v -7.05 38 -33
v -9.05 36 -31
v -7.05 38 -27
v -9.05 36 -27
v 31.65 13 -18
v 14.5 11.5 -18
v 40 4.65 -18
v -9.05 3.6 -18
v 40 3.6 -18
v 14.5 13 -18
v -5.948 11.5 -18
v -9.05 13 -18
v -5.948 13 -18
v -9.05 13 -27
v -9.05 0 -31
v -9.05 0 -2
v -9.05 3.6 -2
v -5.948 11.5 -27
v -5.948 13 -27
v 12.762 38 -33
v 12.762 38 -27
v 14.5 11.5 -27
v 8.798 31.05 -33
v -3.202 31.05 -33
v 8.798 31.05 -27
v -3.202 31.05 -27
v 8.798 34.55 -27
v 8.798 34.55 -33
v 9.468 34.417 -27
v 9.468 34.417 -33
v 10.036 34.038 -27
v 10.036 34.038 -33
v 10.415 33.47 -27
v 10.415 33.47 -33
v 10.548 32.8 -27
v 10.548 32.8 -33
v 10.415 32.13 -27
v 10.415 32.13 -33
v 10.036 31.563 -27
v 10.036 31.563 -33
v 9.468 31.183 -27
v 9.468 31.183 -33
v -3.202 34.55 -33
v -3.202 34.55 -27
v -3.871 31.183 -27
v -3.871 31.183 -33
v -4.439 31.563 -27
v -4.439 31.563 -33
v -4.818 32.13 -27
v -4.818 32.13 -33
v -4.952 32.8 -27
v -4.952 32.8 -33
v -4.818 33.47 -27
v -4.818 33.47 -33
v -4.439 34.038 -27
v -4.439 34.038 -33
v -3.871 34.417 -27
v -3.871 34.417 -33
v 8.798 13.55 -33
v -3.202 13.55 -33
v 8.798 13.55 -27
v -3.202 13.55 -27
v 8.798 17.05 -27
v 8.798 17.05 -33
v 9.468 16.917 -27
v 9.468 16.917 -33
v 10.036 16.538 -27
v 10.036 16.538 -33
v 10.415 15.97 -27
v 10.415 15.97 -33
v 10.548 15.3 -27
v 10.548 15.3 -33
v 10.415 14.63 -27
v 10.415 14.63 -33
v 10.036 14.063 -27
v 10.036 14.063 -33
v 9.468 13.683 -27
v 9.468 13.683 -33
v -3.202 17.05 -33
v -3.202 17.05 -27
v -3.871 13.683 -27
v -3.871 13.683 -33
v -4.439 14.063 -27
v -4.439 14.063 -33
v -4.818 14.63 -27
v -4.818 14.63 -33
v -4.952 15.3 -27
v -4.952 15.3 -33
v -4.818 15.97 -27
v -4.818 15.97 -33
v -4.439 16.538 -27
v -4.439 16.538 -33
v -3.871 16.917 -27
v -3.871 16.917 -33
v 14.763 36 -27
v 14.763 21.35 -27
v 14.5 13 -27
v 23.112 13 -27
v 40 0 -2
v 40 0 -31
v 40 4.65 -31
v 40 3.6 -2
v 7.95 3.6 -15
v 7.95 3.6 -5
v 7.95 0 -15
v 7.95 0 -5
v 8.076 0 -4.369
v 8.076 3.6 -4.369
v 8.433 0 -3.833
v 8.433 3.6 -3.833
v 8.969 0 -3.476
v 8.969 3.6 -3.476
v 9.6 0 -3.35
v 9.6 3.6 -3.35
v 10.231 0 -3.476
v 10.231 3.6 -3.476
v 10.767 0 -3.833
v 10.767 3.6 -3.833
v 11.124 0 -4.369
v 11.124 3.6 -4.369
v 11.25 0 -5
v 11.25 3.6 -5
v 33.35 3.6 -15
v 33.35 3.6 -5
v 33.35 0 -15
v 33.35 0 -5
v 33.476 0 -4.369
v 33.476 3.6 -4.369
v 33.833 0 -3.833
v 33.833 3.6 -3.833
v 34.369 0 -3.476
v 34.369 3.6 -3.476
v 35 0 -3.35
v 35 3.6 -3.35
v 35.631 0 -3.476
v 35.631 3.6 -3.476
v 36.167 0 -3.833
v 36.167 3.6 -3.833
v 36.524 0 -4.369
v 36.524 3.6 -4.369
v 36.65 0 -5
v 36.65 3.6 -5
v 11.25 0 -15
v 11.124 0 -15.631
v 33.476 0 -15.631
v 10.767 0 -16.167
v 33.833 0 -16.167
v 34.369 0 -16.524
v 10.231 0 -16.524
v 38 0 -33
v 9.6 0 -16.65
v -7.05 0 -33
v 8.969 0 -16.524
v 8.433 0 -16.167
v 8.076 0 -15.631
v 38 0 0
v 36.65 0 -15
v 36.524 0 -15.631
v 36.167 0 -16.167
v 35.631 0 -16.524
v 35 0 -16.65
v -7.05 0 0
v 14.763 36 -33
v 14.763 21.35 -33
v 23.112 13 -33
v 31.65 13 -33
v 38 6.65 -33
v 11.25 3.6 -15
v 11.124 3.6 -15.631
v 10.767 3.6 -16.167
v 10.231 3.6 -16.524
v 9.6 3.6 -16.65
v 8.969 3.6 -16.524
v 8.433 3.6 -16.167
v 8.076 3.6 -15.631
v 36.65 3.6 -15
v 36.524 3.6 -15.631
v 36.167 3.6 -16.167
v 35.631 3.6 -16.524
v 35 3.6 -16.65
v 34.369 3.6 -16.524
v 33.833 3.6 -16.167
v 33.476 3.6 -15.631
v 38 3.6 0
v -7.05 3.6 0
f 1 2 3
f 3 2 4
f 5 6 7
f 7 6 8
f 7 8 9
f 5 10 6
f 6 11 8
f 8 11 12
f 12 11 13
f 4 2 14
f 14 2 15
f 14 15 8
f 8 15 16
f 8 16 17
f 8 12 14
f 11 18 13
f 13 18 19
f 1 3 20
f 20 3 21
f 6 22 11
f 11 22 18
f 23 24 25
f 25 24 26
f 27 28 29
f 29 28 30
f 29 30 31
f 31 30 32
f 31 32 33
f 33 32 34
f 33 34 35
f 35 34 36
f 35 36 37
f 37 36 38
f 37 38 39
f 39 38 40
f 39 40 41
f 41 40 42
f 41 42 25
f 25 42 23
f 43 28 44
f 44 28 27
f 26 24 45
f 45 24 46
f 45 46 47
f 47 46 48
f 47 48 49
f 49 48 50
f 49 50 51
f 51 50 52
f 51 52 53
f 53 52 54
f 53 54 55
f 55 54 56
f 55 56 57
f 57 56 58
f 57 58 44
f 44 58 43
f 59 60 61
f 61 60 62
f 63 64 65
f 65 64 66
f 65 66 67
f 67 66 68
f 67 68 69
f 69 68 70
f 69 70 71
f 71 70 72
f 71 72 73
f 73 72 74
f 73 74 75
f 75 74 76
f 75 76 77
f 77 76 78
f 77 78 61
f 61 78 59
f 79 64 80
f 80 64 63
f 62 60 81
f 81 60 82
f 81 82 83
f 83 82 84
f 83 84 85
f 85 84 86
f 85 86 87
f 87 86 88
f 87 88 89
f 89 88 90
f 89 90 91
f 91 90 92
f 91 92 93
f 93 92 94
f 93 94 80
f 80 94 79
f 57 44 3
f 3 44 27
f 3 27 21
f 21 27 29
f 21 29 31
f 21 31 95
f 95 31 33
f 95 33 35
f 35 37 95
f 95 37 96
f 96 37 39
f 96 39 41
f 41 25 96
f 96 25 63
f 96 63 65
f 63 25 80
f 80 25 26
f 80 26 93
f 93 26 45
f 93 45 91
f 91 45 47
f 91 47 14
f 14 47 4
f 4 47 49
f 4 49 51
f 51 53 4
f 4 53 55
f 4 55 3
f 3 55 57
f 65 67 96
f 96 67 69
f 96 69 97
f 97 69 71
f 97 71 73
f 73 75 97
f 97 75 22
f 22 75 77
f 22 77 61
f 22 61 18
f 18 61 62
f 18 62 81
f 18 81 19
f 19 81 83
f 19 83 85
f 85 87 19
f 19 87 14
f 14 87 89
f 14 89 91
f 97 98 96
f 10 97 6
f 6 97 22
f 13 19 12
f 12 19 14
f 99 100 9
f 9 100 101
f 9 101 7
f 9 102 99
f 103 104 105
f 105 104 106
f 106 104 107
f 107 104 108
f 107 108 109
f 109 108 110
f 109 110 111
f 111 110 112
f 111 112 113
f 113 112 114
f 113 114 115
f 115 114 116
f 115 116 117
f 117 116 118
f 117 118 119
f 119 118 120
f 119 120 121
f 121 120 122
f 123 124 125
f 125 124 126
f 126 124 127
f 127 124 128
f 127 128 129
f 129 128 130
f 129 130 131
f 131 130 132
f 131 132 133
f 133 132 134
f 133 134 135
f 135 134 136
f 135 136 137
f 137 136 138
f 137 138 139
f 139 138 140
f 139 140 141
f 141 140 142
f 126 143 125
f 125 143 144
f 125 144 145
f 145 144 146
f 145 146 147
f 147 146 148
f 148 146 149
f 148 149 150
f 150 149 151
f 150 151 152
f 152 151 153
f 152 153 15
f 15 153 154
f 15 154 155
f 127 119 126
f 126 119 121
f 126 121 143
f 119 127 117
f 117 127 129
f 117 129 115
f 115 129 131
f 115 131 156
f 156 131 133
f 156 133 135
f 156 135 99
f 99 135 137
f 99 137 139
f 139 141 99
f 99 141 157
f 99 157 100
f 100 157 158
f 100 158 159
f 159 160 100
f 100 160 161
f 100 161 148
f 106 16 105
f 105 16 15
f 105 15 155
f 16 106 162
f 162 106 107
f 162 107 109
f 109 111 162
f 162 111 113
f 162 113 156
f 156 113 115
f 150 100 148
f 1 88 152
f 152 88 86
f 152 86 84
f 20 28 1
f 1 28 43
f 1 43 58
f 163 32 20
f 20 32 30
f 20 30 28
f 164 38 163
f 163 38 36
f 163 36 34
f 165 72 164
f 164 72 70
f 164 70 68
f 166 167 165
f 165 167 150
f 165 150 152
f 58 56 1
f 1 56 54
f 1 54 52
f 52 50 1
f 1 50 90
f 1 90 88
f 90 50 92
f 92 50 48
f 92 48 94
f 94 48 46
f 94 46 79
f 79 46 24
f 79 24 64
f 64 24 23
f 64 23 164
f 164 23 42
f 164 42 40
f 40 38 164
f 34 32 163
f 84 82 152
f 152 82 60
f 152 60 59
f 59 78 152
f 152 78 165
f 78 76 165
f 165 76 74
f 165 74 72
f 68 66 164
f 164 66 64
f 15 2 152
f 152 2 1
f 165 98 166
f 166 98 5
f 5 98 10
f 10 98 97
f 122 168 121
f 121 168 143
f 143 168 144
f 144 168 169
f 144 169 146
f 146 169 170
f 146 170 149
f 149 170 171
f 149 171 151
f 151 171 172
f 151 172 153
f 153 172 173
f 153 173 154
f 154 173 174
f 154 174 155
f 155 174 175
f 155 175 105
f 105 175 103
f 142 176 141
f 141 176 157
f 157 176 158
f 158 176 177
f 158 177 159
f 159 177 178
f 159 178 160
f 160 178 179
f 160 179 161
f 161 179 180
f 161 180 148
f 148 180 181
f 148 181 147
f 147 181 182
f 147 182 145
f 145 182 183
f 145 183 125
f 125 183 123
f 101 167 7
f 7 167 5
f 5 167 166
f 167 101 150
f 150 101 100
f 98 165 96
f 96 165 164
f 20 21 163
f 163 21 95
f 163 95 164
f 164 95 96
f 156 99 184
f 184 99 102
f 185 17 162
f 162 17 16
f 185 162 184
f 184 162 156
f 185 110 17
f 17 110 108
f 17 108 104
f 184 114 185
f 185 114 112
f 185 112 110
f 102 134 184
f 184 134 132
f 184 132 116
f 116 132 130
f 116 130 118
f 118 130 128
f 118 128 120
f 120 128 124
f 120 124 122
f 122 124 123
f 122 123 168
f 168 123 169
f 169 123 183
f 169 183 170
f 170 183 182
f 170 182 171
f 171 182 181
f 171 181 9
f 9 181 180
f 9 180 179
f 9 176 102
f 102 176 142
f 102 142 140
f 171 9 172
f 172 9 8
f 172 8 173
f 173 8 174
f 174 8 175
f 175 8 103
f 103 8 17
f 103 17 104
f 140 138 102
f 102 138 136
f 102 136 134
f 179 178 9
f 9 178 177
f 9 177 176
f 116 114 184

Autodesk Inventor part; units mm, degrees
ref_plane "YZ Plane" through (0, 0, 0) normal (1, 0, 0) x (0, 1, 0)
ref_plane "XZ Plane" through (0, 0, 0) normal (0, 1, 0) x (-1, 0, 0)
ref_plane "XY Plane" through (0, 0, 0) normal (0, 0, 1) x (1, 0, 0)
sketch "Sketch1" plane through (0, 0, 0) normal (1, 0, 0) x (0, 1, 0)
  line L0 (0, 0) -> (13, 0)
  line L1 (13, 0) -> (13, -27)
  line L2 (13, -27) -> (0, -27)
  line L3 (0, -27) -> (0, 0)
  dimension "d0" = 13
  dimension "d1" = 27
extrude "Extrusion1" add sketch "Sketch1" along normal blind 40
sketch "Sketch2" plane through (40, 0, 0) normal (1, 0, 0) x (0, 0, -1)
  line L0 (27, 0) -> (27, 13) projected
  line L1 (27, 0) -> (33, 0)
  line L2 (33, 0) -> (33, 38)
  line L3 (33, 38) -> (27, 38)
  line L4 (27, 38) -> (27, 0)
  point P0 (0, 0)
  dimension "d4" = 6
  dimension "d5" = 38
extrude "Extrusion2" add sketch "Sketch2" against normal blind 40
sketch "Sketch3" plane through (0, 13, 0) normal (0, 1, 0) x (1, 0, 0)
  line L0 (40, 27) -> (40, 0) construction
  line L1 (40, 0) -> (35, 0) construction
  line L2 (0, 0) -> (40, 0) construction
  line L3 (35, 0) -> (35, 5) construction
  line L4 (35, 5) -> (35, 15) construction
  line L5 (35, 5) -> (9.6, 5) construction
  line L6 (35, 5) -> (35, 15) construction
  line L7 (36.65, 5) -> (36.65, 15)
  line L8 (33.35, 15) -> (33.35, 5)
  arc A0 (33.35, 5) -> (36.65, 5) centre (35, 5) ccw
  arc A1 (36.65, 15) -> (33.35, 15) centre (35, 15) ccw
  line L9 (9.6, 0) -> (9.6, 5) construction
  line L10 (9.6, 5) -> (9.6, 15) construction
  line L11 (9.6, 5) -> (-15.8, 5) construction
  line L12 (9.6, 5) -> (9.6, 15) construction
  line L13 (11.25, 5) -> (11.25, 15)
  line L14 (7.95, 15) -> (7.95, 5)
  arc A2 (7.95, 5) -> (11.25, 5) centre (9.6, 5) ccw
  arc A3 (11.25, 15) -> (7.95, 15) centre (9.6, 15) ccw
  point P0 (35, 10)
  point P1 (9.6, 10)
  dimension "d8" = 5
  dimension "d9" = 5
  dimension "d10" = 10
  dimension "d11" = 25.4
  dimension "d12" = 3.3
  dimension "d13" = 5
  dimension "d14" = 10
  dimension "d15" = 25.4
  dimension "d16" = 3.3
extrude "Extrusion3" cut sketch "Sketch3" against normal blind 40
sketch "Sketch4" plane through (0, 13, 0) normal (0, 1, 0) x (1, 0, 0)
  point P0 (0, 0)
sketch "Sketch7" plane through (40, 13, -27) normal (0, 0, 1) x (1, 0, 0)
  line L0 (0, 25) -> (0, 0) projected
  line L1 (-40, 0) -> (0, 0) projected
  line L2 (0, 25) -> (-20, 25)
  line L3 (-20, 25) -> (-20, 0)
  line L4 (-20, 0) -> (0, 0)
  line L5 (0, 0) -> (0, 25)
  point P0 (-40, -13)
extrude "Extrusion6" cut sketch "Sketch7" against normal blind 45.275
sketch "Sketch9" plane through (0, 0, 0) normal (-1, 0, 0) x (0, 0, 1)
  line L0 (0, 0) -> (0, 3.6) construction
  line L1 (0, 13) -> (0, 0) construction
  line L2 (0, 3.6) -> (-18, 3.6)
  line L3 (-18, 3.6) -> (-18, 13)
  line L4 (-18, 13) -> (0, 13)
  line L5 (0, 13) -> (0, 3.6)
  dimension "d58" = 3.6
  dimension "d59" = 18
extrude "Extrusion8" cut sketch "Sketch9" against normal blind 50.325
sketch "Sketch10" plane through (40, 0, -33) normal (0, 0, -1) x (-1, 0, 0)
  point P0 (40, 0)
sketch "Sketch8" plane through (0, 13, -27) normal (0, 1, 0) x (1, 0, 0)
  line L0 (0, 0) -> (20, 0) construction
  line L1 (0, 0) -> (2.5, 0) construction
  line L2 (2.5, 0) -> (14.5, 0)
  line L3 (14.5, 0) -> (14.5, -10)
  line L4 (14.5, -10) -> (2.5, -10)
  line L5 (2.5, -10) -> (2.5, 0)
  point P0 (0, -27)
  point P1 (26.7625, 0)
  dimension "d53" = 2.5
  dimension "d54" = 12
  dimension "d55" = 10
extrude "Extrusion7" cut sketch "Sketch8" against normal blind 1.5
sketch "Sketch11" plane through (0, 0, 0) normal (-1, 0, 0) x (0, 0, 1)
  line L0 (0, 3.6) -> (-18, 3.6) projected
  line L1 (-18, 3.6) -> (-18, 13) projected
  line L2 (-27, 13) -> (-18, 13) projected
  line L3 (-27, 13) -> (-27, 38) projected
  line L4 (-27, 38) -> (-33, 38) projected
  line L5 (-33, 38) -> (-33, 0) projected
  line L6 (0, 0) -> (-33, 0) projected
  line L7 (0, 3.6) -> (0, 0) projected
extrude "Extrusion9" add sketch "Sketch11" along normal blind 9.05
sketch "Sketch6" plane through (40, 13, -27) normal (0, 0, 1) x (1, 0, 0)
  line L0 (-40, 0) -> (0, 0) construction
  line L1 (-47.2016, 0) -> (-47.2016, 2.3001) construction
  line L2 (-40, 25) -> (-40, -13) construction
  line L3 (-47.2016, 2.3001) -> (-13.7954, 2.3001) construction
  line L4 (-47.2016, 2.3001) -> (-47.2016, 19.8001) construction
  line L5 (-47.2016, 19.8001) -> (-14.7386, 19.8001) construction
  line L6 (-47.2016, 2.3001) -> (-43.2016, 2.3001) construction
  line L7 (-43.2016, 2.3001) -> (-43.2016, 19.8001) construction
  line L8 (-43.2016, 19.8001) -> (-31.2016, 19.8001) construction
  line L9 (-43.2016, 2.3001) -> (-31.2016, 2.3001) construction
  line L10 (-43.2016, 19.8001) -> (-31.2016, 19.8001) construction
  line L11 (-43.2016, 18.0501) -> (-31.2016, 18.0501)
  line L12 (-31.2016, 21.5501) -> (-43.2016, 21.5501)
  arc A0 (-43.2016, 21.5501) -> (-43.2016, 18.0501) centre (-43.2016, 19.8001) ccw
  arc A1 (-31.2016, 18.0501) -> (-31.2016, 21.5501) centre (-31.2016, 19.8001) ccw
  line L13 (-43.2016, 2.3001) -> (-31.2016, 2.3001) construction
  line L14 (-43.2016, 0.5501) -> (-31.2016, 0.5501)
  line L15 (-31.2016, 4.0501) -> (-43.2016, 4.0501)
  arc A2 (-43.2016, 4.0501) -> (-43.2016, 0.5501) centre (-43.2016, 2.3001) ccw
  arc A3 (-31.2016, 0.5501) -> (-31.2016, 4.0501) centre (-31.2016, 2.3001) ccw
  point P0 (-37.2016, 19.8001)
  point P1 (-37.2016, 2.3001)
  dimension "d28" = 7.56
  dimension "d29" = 17.5
  dimension "d30" = 4
  dimension "d31" = 12
  dimension "d32" = 12
  dimension "d33" = 3.5
  dimension "d34" = 3.5
extrude "Extrusion5" cut sketch "Sketch6" against normal blind 35.6875
sketch "Sketch13" plane through (2.5, 13, -18) normal (0, 1, 0) x (1, 0, 0)
  line L0 (-11.55, 0) -> (37.5, 0) projected
  line L1 (6.2984, 9) -> (-5.7016, 9) projected
  line L2 (-8.4479, 0) -> (0.0285, 0)
  line L3 (0.0285, 0) -> (0.0285, 9)
  line L4 (0.0285, 9) -> (-8.4479, 9)
  line L5 (-8.4479, 9) -> (-8.4479, 0)
  point P0 (-2.5, -18)
  point P1 (5.45, 0)
  point P2 (0.0285, 0)
  point P3 (-5.7016, 9)
extrude "Extrusion10" cut sketch "Sketch13" against normal up to surface (1.5 mm away)
chamfer "Chamfer5" distance 8.35 angle 45 1 edges at (40, 13, -25.5)
sketch "Sketch14" plane through (20, 13, -27) normal (1, 0, 0) x (0, 0, -1)
  line L0 (6, 25) -> (6, 0) projected
  line L1 (0, 25) -> (6, 25) projected
  line L2 (0, 0) -> (0, 25) projected
  line L3 (0, 0) -> (6, 0) projected
  point P0 (-27, -13)
extrude "Extrusion11" cut sketch "Sketch14" against normal blind 5.2375
chamfer "Chamfer6" distance 8.35 angle 45 1 edges at (14.7625, 13, -30)
chamfer "Chamfer7" distance 2 angle 45 2 edges at (14.7625, 38, -30) (-9.05, 38, -30)
chamfer "Chamfer8" distance 2 angle 45 4 edges at (40, 1.8, 0) (-9.05, 1.8, 0) (40, 2.325, -33) (-9.05, 18, -33)
properties part number "Motor Mount v2"
